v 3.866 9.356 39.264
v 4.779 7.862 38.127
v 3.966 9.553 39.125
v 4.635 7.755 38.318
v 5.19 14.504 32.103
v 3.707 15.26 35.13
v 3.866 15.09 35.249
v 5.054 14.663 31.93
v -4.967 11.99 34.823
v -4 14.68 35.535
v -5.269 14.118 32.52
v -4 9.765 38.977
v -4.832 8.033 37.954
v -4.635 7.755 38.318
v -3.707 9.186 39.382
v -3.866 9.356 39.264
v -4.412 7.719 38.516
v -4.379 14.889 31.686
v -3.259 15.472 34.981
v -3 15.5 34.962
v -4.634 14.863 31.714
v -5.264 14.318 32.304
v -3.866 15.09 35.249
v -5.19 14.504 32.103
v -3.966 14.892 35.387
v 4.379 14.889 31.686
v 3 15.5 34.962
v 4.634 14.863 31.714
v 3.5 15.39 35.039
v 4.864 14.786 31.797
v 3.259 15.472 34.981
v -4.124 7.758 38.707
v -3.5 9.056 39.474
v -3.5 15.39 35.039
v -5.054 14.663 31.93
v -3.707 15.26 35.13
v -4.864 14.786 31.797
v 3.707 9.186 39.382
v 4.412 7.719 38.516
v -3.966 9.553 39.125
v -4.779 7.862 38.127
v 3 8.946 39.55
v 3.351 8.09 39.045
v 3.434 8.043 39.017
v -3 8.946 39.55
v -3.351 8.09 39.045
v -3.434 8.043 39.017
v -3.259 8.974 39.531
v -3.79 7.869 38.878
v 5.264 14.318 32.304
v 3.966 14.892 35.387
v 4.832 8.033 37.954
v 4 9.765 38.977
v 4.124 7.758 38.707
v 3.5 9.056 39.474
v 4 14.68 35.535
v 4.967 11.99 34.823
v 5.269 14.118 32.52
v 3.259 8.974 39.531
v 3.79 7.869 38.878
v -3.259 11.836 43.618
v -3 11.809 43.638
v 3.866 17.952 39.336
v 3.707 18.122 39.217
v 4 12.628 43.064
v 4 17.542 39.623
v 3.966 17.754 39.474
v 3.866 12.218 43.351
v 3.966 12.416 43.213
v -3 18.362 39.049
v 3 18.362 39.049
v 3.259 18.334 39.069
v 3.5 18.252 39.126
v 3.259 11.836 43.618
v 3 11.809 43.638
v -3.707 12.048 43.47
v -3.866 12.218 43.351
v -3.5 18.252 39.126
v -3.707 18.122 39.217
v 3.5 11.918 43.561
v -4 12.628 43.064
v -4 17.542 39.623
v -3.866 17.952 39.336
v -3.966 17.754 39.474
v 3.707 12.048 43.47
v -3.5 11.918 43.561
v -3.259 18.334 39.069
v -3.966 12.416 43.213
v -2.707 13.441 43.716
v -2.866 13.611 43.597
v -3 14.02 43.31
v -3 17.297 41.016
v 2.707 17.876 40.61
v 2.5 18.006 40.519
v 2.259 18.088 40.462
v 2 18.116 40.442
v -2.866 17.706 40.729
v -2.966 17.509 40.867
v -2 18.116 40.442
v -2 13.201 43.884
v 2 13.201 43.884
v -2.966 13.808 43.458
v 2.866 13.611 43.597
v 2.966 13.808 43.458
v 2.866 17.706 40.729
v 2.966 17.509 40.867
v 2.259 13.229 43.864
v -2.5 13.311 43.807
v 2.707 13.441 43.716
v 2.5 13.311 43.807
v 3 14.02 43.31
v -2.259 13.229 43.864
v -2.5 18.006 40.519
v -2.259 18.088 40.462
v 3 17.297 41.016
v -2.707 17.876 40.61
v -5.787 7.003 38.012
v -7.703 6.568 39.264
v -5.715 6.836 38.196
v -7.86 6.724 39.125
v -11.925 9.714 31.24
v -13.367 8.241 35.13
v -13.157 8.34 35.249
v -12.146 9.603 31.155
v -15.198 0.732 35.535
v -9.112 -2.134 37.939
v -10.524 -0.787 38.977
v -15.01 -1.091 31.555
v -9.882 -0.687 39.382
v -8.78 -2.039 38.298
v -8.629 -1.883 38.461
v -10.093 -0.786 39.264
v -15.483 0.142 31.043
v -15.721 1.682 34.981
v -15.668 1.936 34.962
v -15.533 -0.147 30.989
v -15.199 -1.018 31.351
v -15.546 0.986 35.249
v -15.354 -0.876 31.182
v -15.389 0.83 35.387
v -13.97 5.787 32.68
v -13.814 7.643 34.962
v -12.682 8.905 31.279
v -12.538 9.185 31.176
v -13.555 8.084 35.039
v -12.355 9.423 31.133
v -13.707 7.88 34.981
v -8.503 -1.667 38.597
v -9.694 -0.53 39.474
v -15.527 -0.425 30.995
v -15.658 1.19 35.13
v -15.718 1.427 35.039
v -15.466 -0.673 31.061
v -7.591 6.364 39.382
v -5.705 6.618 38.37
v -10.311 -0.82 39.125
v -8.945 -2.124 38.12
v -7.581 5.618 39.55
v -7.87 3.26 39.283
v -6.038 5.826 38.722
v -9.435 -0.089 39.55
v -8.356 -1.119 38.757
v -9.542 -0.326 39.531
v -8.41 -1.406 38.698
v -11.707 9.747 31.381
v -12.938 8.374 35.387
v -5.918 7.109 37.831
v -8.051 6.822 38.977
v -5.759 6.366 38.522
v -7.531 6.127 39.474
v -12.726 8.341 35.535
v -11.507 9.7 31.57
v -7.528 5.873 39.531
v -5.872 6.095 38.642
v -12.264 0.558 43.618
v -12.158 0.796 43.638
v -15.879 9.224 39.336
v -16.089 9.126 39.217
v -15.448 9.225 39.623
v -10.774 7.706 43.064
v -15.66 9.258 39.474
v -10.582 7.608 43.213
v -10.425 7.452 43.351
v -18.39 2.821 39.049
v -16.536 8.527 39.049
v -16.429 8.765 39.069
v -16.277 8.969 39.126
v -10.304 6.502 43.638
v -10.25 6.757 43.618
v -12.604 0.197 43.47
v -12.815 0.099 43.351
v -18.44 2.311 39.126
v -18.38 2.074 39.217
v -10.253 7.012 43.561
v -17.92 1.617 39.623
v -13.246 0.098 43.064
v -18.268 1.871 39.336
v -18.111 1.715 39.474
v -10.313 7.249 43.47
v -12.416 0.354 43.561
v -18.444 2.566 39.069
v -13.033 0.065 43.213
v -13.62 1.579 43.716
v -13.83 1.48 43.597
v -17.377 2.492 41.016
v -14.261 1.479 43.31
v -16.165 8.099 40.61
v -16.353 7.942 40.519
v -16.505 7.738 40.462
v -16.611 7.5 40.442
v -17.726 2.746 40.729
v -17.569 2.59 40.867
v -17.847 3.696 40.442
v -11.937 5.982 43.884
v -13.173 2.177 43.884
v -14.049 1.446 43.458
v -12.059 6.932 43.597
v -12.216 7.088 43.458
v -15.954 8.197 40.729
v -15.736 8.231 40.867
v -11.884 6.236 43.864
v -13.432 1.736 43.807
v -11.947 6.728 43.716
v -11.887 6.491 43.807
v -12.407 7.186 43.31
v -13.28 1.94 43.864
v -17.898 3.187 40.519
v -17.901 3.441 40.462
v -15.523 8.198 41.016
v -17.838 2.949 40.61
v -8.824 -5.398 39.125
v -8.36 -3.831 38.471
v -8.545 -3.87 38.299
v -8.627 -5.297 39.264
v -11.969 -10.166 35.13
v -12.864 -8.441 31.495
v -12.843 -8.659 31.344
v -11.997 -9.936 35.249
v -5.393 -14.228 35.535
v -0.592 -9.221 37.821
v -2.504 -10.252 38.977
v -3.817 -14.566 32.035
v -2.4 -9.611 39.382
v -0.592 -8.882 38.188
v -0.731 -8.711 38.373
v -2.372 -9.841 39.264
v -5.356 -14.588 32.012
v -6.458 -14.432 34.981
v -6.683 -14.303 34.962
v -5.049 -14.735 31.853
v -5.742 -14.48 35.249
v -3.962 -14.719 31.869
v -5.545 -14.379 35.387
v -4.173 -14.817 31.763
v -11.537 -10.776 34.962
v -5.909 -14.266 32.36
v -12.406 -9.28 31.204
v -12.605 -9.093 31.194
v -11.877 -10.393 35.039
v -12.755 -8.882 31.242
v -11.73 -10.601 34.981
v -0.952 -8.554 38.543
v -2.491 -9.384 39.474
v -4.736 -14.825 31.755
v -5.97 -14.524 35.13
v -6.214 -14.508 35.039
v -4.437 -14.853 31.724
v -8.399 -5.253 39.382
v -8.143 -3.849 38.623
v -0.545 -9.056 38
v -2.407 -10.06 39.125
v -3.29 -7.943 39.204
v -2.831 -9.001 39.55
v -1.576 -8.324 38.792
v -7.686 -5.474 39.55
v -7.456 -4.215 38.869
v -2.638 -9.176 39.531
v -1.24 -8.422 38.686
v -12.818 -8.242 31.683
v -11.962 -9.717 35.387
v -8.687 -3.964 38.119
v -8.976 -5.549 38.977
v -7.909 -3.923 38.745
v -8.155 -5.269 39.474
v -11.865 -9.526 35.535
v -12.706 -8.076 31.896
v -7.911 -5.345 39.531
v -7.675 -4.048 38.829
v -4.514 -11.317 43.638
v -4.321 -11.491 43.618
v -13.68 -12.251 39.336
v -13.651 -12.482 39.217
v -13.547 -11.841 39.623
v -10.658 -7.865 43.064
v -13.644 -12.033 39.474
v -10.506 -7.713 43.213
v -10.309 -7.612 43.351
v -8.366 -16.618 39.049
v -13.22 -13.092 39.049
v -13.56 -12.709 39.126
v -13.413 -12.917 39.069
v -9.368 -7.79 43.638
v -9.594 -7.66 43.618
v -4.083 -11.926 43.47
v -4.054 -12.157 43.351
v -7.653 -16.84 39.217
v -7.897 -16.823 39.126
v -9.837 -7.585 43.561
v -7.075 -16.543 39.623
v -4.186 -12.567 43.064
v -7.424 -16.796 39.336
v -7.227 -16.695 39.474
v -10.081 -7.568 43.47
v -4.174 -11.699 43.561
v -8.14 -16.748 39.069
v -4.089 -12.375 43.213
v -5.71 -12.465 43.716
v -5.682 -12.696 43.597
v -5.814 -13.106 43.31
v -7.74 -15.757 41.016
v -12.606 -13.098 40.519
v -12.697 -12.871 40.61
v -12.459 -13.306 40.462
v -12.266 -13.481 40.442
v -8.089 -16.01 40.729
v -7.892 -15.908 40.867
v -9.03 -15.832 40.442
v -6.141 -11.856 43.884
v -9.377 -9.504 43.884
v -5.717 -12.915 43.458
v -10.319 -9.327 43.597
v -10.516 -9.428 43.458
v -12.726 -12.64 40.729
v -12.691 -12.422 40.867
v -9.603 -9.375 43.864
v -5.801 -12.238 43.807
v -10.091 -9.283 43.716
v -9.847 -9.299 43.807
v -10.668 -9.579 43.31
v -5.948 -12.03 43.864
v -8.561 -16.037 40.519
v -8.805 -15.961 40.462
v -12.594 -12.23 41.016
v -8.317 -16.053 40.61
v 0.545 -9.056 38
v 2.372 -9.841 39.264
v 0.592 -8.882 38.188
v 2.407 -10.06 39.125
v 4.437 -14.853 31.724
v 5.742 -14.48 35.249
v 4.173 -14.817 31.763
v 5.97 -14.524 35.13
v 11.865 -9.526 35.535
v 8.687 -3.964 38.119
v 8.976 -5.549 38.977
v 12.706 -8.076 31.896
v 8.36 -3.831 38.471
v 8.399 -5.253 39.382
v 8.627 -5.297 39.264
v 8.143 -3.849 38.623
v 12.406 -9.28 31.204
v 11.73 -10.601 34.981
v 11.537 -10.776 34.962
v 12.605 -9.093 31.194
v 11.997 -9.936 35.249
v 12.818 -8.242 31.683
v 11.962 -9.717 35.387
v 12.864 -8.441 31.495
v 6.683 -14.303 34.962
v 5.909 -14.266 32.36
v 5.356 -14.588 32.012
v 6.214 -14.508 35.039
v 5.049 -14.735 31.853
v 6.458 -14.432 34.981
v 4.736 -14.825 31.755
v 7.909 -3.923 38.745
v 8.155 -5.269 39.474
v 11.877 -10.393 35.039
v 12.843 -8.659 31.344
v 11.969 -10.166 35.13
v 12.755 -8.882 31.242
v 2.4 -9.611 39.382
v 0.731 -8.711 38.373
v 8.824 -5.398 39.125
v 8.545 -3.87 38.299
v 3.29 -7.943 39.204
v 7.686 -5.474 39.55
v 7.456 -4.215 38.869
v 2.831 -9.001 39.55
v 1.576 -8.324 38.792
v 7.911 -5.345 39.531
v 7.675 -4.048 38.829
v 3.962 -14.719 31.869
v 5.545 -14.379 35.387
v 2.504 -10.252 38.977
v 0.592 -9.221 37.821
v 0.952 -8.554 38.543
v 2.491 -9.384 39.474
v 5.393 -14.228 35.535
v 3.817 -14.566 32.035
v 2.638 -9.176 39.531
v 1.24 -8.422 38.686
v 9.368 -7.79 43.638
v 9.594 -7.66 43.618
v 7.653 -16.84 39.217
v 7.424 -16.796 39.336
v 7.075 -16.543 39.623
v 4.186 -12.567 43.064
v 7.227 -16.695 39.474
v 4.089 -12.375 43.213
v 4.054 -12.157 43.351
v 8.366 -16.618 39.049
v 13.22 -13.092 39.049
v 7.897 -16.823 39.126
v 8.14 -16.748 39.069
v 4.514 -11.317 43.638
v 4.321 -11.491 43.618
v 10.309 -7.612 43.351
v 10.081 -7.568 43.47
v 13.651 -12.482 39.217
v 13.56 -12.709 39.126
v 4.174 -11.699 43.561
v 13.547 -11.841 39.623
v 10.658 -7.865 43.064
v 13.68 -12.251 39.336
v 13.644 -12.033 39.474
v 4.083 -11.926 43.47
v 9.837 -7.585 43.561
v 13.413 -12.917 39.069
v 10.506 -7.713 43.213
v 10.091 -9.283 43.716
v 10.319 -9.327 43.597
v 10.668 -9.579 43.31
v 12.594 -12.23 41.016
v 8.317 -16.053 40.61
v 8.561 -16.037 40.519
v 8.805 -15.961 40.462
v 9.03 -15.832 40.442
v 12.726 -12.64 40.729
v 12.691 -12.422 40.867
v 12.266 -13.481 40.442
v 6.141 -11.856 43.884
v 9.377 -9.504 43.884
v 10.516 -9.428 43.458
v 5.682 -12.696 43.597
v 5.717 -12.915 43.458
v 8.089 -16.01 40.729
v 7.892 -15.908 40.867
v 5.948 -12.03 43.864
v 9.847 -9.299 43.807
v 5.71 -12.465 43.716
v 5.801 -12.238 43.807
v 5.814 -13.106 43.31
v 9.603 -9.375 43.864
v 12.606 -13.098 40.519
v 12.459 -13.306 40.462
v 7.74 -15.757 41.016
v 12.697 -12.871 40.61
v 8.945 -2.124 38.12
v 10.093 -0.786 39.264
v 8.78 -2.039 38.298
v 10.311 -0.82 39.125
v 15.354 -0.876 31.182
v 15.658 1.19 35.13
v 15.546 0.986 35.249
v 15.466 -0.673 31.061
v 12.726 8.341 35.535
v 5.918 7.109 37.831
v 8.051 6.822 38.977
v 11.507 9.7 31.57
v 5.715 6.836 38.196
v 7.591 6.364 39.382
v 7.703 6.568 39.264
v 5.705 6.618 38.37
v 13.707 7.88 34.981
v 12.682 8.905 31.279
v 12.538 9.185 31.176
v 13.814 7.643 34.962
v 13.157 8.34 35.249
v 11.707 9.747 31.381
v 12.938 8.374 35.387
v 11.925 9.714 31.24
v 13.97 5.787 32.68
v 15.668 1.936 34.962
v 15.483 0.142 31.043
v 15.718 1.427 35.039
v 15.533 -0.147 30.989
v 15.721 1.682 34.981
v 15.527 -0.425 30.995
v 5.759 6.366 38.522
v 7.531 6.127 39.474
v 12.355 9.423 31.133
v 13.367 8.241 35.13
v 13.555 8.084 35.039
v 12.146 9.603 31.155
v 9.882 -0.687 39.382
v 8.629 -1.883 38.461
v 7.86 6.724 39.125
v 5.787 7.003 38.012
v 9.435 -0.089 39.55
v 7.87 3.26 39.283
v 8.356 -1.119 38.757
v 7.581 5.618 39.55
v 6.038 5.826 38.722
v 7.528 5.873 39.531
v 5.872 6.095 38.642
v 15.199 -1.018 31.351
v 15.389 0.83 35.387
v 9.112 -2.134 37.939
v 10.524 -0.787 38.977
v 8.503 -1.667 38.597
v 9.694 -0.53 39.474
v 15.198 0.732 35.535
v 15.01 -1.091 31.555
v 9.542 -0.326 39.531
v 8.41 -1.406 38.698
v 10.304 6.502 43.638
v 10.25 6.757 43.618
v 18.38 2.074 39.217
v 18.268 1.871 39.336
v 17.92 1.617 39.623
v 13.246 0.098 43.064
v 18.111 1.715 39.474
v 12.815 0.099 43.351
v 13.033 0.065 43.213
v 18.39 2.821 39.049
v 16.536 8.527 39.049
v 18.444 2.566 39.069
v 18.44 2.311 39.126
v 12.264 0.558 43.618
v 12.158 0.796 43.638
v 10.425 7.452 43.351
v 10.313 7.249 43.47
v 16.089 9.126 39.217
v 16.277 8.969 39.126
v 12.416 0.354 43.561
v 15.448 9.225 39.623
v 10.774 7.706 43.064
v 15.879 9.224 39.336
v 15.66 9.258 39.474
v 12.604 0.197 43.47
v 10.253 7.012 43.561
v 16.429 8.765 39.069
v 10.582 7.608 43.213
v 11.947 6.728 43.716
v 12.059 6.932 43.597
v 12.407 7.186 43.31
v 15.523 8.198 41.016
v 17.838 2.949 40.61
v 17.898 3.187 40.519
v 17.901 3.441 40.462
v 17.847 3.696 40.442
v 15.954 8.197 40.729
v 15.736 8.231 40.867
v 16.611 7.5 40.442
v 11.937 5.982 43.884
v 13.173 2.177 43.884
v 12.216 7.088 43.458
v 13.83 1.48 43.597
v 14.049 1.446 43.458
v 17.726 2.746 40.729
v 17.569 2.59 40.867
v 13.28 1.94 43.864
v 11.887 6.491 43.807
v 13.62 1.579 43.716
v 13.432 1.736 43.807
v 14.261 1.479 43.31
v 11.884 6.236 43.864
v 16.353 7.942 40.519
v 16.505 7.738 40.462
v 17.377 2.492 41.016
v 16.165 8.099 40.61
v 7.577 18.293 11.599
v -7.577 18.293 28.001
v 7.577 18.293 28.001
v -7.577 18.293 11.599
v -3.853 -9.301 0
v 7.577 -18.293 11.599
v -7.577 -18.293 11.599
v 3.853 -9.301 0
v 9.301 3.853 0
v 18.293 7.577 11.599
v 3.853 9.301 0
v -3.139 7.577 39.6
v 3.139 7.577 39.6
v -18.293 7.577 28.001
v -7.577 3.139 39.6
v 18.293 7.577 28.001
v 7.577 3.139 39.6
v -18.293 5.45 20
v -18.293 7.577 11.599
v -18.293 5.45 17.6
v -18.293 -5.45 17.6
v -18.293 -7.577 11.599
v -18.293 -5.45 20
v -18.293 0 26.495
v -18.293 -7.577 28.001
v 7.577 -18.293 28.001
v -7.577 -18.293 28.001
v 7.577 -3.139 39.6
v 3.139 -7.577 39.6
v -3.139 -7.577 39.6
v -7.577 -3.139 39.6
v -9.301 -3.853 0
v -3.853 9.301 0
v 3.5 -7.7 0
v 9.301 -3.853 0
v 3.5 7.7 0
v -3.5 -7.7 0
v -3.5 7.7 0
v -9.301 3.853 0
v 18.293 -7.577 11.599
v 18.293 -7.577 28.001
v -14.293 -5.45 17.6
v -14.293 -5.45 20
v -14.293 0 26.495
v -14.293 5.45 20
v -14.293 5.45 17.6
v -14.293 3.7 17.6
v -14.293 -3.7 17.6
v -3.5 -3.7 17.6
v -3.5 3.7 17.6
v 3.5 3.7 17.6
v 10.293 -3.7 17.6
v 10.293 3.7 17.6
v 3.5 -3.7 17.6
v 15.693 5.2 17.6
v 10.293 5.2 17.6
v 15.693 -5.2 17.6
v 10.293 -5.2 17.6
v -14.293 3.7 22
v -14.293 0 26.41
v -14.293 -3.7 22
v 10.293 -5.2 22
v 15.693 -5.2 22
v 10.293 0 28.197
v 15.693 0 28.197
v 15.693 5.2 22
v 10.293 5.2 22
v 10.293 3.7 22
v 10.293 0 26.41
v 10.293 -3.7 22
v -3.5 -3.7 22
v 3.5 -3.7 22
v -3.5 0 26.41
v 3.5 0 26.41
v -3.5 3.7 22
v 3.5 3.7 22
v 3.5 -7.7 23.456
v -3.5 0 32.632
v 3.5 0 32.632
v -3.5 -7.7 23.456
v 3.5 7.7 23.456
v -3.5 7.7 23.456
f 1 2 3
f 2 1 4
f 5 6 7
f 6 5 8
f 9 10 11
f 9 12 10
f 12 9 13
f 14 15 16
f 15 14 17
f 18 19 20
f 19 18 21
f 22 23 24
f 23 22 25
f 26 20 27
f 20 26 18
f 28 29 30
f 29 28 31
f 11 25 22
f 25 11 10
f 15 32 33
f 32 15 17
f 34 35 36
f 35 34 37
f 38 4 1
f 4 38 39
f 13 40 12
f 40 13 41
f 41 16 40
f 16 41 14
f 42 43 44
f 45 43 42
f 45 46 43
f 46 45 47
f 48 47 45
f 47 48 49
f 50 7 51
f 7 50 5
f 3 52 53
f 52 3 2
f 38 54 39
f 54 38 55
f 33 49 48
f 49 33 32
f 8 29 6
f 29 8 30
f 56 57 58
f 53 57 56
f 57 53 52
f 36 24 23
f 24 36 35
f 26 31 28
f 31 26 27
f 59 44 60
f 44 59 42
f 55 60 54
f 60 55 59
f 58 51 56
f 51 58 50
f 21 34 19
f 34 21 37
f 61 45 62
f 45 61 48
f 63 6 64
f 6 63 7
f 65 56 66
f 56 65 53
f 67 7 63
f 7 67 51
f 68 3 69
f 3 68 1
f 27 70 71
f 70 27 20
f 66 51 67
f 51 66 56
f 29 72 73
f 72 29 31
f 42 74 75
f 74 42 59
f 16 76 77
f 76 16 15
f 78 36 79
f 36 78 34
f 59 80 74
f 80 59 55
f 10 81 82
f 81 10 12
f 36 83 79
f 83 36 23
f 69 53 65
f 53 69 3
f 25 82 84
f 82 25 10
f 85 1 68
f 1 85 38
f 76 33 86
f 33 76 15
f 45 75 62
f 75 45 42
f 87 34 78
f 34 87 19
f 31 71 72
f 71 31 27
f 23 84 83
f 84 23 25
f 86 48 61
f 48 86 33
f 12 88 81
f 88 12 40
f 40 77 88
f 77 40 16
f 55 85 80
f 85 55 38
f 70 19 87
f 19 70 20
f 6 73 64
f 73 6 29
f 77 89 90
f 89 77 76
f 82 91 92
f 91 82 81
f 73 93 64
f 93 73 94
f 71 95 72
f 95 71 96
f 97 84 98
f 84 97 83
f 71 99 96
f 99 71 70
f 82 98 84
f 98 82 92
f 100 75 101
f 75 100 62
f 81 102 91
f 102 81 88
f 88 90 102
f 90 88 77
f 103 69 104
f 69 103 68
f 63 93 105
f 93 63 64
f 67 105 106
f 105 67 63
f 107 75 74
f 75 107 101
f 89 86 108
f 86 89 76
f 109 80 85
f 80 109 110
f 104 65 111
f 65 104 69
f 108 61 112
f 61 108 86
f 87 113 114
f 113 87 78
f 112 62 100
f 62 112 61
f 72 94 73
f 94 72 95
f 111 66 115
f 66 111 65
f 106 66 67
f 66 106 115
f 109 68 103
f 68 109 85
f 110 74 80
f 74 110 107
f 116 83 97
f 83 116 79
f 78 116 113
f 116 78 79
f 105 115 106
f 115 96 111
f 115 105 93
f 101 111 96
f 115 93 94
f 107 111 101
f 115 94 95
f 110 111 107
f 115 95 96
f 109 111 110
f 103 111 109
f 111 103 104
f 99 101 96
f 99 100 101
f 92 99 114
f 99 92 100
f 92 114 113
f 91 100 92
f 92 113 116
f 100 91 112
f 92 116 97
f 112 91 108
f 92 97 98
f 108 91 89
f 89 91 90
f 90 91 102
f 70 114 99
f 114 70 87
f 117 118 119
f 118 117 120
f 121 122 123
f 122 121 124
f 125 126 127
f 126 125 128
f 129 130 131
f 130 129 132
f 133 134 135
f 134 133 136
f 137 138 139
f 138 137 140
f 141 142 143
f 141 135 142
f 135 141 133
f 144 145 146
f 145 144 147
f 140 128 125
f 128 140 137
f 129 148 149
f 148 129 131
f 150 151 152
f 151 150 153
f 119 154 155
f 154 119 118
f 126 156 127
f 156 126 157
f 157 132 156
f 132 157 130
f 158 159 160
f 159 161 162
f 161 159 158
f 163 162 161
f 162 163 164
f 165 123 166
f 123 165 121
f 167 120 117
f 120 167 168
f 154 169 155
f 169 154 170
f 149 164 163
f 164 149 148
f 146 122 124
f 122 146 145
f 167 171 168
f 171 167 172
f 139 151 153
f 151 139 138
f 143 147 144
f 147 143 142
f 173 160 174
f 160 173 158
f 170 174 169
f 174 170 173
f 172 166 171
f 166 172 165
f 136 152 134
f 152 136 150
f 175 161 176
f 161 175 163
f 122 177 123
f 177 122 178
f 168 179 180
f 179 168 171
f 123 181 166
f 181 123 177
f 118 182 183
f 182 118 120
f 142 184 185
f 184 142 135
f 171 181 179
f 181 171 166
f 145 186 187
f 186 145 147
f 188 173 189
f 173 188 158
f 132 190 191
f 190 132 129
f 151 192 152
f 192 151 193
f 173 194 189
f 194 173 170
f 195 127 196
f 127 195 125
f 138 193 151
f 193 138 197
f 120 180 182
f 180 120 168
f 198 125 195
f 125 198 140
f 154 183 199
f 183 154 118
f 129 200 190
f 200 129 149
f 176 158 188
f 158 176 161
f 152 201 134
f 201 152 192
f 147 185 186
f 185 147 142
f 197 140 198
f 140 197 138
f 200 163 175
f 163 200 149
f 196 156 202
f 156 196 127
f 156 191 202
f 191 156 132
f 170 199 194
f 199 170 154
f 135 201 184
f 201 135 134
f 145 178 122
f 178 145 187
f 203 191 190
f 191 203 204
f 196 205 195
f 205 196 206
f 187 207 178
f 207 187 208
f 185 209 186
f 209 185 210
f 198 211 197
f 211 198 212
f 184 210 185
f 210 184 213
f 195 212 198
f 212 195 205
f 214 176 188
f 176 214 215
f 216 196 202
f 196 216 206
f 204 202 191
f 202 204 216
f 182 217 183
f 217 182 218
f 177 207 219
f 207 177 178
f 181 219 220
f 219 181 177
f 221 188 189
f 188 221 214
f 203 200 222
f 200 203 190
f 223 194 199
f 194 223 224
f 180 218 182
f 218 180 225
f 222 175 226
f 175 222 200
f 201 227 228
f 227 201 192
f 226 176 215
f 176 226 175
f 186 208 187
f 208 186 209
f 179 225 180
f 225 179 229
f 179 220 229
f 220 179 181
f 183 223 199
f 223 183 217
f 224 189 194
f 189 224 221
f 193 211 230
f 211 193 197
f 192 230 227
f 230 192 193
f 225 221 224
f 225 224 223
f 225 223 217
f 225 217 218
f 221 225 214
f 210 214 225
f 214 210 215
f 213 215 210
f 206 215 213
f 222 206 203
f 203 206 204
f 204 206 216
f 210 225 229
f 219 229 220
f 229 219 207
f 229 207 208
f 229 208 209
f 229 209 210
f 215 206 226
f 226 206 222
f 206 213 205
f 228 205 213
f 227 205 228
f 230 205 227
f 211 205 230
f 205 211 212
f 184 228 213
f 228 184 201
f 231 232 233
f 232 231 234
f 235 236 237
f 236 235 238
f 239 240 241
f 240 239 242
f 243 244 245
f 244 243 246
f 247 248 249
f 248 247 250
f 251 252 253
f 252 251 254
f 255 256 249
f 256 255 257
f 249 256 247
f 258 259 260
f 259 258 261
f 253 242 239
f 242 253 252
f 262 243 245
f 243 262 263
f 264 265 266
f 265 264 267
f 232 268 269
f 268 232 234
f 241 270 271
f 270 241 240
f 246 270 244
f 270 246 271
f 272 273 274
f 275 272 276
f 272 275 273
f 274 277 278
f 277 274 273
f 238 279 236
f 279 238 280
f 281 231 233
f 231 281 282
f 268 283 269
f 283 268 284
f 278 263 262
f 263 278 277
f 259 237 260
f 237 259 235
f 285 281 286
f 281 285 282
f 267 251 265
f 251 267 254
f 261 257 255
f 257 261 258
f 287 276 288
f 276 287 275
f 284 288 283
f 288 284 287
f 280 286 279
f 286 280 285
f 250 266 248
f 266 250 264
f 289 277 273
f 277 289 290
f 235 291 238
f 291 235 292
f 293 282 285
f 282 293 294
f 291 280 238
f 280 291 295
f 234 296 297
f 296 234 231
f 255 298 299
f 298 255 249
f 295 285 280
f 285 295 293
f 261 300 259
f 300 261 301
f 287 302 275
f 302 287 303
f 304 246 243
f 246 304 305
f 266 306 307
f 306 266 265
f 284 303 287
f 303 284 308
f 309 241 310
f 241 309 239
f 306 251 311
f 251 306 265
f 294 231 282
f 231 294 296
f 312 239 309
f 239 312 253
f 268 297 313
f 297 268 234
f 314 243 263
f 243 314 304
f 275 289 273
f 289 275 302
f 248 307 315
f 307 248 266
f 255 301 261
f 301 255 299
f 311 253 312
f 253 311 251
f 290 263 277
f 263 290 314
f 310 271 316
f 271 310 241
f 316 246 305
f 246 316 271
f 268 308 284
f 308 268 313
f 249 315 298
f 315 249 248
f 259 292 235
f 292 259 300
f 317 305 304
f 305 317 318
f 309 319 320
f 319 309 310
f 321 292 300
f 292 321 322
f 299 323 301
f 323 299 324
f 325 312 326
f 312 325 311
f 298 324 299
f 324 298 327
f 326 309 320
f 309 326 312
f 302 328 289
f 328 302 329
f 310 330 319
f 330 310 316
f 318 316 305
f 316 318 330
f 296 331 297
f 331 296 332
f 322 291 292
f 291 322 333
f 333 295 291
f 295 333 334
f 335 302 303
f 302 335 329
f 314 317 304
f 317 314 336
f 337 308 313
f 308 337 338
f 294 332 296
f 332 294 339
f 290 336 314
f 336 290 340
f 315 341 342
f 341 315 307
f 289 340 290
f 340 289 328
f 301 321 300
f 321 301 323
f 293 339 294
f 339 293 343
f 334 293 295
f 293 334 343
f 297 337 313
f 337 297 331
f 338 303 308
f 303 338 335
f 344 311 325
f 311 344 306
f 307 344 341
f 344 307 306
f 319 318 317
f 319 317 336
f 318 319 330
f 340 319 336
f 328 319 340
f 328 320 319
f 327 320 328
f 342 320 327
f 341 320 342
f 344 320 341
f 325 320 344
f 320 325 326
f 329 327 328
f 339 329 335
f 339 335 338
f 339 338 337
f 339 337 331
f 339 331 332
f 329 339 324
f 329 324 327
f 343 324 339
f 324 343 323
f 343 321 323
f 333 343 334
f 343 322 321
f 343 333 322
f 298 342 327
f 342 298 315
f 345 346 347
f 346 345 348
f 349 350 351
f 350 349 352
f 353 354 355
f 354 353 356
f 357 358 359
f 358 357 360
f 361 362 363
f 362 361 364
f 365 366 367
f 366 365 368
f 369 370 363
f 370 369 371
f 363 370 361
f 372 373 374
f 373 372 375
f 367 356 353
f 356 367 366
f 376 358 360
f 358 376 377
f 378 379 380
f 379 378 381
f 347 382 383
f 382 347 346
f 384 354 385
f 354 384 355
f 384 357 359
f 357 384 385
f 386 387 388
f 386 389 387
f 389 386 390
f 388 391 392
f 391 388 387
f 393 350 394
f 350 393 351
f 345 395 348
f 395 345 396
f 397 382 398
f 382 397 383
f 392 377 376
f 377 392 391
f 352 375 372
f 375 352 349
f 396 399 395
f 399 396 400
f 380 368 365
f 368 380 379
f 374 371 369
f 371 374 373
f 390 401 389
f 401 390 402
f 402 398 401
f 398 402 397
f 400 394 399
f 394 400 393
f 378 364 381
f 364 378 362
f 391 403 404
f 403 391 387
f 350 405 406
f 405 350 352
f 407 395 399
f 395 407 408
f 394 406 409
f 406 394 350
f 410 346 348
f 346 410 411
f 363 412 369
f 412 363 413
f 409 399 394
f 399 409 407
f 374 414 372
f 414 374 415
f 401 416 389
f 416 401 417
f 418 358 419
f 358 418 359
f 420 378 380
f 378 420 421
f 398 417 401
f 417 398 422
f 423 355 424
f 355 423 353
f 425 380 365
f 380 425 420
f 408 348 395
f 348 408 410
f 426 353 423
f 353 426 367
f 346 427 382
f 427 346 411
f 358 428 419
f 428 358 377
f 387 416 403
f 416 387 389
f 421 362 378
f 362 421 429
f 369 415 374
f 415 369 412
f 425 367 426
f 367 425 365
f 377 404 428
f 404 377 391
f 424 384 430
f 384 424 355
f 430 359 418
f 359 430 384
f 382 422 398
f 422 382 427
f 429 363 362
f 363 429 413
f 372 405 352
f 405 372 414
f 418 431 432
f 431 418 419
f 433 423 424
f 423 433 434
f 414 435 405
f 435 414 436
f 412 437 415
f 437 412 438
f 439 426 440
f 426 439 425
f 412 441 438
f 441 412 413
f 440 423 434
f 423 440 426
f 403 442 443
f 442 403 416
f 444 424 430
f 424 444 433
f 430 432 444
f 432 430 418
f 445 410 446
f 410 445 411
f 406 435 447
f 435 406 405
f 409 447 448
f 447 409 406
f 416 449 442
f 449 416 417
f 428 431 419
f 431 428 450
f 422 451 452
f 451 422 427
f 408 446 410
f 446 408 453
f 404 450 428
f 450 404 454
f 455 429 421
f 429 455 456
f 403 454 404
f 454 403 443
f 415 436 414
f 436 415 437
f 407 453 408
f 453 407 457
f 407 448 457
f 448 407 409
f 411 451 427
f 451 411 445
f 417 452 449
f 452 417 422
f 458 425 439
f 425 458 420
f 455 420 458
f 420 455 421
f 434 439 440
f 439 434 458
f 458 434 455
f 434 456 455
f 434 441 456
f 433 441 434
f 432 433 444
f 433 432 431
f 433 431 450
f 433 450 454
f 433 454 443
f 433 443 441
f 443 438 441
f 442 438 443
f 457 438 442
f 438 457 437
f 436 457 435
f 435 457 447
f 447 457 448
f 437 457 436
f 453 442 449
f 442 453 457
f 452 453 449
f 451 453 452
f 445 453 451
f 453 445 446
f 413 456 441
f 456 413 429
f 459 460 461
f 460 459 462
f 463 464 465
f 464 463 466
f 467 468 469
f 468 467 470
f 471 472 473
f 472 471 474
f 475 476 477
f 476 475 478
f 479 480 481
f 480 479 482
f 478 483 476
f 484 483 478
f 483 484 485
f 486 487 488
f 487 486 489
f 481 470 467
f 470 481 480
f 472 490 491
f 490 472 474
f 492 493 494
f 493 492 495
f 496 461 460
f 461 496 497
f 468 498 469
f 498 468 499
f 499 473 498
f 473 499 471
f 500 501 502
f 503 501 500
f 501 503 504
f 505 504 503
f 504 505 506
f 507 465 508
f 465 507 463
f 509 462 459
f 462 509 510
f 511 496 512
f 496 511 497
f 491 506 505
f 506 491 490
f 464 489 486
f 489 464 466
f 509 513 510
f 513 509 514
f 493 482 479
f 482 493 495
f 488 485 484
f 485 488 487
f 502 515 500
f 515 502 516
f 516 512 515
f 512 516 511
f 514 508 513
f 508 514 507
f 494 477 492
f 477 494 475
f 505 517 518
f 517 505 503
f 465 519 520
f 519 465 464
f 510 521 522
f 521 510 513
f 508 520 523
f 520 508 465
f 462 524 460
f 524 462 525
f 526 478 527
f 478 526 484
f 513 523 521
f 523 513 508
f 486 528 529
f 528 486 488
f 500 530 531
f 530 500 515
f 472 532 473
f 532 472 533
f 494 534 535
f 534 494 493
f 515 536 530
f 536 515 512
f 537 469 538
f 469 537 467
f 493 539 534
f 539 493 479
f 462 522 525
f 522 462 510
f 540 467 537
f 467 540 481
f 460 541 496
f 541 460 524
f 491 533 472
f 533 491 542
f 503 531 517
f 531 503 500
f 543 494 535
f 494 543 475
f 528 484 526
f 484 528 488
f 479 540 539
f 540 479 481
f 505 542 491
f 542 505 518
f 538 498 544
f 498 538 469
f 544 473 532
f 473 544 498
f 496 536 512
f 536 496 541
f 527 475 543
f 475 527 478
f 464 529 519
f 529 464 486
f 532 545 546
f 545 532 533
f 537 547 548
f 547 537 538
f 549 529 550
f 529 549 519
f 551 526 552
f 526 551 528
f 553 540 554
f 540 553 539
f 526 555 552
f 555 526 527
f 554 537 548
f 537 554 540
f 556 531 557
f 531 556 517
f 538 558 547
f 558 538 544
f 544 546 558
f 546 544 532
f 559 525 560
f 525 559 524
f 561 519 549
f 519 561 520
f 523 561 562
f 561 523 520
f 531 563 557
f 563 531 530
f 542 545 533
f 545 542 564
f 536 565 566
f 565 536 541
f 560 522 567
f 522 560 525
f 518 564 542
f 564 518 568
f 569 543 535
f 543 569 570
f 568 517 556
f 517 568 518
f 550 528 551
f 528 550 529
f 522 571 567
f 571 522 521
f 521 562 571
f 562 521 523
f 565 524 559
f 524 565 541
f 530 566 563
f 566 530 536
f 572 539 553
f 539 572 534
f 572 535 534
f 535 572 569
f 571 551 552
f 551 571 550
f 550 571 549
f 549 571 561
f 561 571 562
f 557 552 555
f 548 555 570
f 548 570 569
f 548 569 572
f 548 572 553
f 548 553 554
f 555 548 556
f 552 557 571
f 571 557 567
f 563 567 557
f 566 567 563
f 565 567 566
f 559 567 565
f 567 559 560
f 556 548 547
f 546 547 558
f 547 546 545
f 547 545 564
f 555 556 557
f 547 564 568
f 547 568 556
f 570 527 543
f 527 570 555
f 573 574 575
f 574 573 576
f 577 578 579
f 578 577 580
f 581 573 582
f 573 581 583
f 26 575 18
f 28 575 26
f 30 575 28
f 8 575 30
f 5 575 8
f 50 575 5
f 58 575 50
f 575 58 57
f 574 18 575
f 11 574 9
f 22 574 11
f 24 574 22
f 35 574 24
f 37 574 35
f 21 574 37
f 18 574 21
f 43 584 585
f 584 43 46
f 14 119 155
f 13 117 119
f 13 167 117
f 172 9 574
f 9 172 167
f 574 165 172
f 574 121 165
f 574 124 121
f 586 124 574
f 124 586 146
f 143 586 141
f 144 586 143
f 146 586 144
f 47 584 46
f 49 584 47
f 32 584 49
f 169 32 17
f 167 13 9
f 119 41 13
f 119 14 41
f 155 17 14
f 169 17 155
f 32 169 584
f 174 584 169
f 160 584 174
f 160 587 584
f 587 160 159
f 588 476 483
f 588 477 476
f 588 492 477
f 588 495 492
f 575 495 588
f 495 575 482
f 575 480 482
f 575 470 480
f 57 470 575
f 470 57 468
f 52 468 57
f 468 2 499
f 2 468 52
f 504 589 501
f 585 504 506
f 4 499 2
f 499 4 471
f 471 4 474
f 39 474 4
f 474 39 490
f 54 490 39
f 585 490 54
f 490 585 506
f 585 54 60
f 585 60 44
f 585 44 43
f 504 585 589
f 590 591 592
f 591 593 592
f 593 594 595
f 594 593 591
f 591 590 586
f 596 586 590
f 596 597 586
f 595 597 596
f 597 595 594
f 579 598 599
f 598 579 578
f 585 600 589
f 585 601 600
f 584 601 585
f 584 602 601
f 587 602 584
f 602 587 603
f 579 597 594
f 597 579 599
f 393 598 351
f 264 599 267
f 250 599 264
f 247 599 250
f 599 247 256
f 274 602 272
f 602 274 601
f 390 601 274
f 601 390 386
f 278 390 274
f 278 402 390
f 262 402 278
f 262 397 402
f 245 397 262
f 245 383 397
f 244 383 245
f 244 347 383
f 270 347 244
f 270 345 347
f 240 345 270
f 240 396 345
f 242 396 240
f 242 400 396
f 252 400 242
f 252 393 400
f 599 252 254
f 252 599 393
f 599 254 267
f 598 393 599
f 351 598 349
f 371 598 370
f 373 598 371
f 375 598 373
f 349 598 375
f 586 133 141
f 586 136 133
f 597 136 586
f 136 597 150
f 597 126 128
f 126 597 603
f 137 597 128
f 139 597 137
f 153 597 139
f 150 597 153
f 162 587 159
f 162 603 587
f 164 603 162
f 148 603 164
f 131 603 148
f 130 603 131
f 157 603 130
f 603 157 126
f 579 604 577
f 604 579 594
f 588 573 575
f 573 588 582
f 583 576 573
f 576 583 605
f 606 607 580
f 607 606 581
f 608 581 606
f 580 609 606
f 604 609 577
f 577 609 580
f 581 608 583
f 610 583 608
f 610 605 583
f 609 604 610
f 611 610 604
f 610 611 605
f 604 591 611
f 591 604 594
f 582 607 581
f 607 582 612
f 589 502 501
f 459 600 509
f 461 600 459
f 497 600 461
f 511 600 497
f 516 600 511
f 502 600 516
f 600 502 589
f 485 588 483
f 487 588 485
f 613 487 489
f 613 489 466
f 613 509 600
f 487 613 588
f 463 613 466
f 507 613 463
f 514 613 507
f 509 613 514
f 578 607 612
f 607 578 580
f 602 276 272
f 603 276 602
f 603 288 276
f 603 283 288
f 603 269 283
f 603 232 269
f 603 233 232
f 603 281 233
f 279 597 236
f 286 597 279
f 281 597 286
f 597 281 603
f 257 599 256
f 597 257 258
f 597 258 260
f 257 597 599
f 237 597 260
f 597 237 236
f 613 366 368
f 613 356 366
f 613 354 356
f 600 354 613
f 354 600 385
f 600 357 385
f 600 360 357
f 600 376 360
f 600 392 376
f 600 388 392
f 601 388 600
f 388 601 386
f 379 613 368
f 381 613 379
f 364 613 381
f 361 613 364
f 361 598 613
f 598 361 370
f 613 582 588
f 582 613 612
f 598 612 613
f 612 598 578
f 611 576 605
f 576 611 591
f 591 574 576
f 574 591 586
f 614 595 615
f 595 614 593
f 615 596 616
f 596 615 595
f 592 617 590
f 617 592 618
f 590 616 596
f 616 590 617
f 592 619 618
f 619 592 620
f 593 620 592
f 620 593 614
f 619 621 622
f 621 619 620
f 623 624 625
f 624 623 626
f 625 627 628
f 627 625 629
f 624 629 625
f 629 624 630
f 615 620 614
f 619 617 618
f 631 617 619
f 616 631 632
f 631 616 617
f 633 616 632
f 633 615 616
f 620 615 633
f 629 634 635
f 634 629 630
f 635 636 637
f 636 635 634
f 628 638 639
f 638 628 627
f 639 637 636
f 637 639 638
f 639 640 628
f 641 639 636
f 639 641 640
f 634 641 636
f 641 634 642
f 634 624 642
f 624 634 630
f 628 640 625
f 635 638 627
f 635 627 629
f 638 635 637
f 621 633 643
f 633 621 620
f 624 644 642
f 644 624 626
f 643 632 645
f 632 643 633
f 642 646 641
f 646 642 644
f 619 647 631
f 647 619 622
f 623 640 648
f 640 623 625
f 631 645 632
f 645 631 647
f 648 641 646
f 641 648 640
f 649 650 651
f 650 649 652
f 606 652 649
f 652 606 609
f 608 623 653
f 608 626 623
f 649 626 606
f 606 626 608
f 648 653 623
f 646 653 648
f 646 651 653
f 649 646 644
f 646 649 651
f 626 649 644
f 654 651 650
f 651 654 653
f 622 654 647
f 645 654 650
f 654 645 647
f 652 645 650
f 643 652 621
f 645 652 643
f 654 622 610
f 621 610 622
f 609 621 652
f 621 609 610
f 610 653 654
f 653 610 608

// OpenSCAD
// Faceted sea-mine (8 flat sides, square horns; Russ): generated from chain_shot_ball.scad, edit that file.
// Chain-shot ball: one of two identical solid PCTG balls joined by steel
// cable (recommended) or chain. Fired one behind the other with the cable
// folded between them; in flight they spread and spin around each other.
//
// Shape: as round as a one-piece, support-free print allows. A 39.6 mm sphere
// whose only non-round spot is a small flat on the bottom (with a short 47 deg
// cone), where the cable leaves. Optional sea-mine horns (set horns = true).
//
// Cable/chain anchor: a thick snap-in cross pin with a channel around it.
//   - Pin first: push it in through the side hole marked by the wide
//     counterbore (the "head" side) until its split end snaps into the pocket
//     on the far side. It takes a firm push.
//   - Then the cable: push one end up the channel from the bottom flat on one
//     side of the pin. The peaked ceiling steers it over the top of the pin
//     and back down the other side and out the bottom. Pull it through and
//     crimp a loop (or join the two ends) outside the ball.
//   - Locked both ways: the head stops the pin going further in; two hooks on
//     the split end catch a square ledge so it can't back out.
//   - To remove: squeeze the two hooks together through the wide far-side
//     opening (pliers or fingertips) and push the pin back out the head side.
//   - The cable's pull presses the pin down onto solid plastic (compression).
// Pin and hole have a "house" profile (flat floor, straight sides, 50 deg
// roof): the hole prints with no support, the pin prints lying on its floor,
// and it can't spin.
//
// Cable: 1/8 in. 7x19 galvanized or stainless wire rope (about 1,700-2,000 lb
// breaking strength), stronger than the printed pin, so the cable is not the
// weak link. The channel leaves 4 mm around the pin for it (1/16 or 3/32 in.
// cable also fits). Chain: a link wire up to ~3.5 mm thick fits the channel,
// but a chain can't be threaded around an installed pin: open the end link or
// use a quick link through the channel instead.
//
// Print: ball flat side down, 100% infill. Pin flat side down, 100% infill,
// 5+ walls. Supports off.

$fn = 160;

part        = "ball";   // "ball", "pin", or "both"
shape       = "ball";   // "ball" (round) or "slug" (39.6 x 39.6 mm cylinder: no overhangs, ~70% heavier)
slug_round  = 2.0;      // slug: rounded top edge
horns       = true;     // true = sea-mine version with thick horns on the upper half
faceted     = true;     // true = 8-sided body (octagon from above and from the side) and square horns (Russ:
                        // round shapes print jagged and stringy on his printer; flat faces print clean)
lead        = false;    // faceted only: two sealed side pockets for lead shot, filled during a print PAUSE (Russ)
lead_wall   = 3.0;      // plastic around the pockets
lead_pause  = 26.0;     // PAUSE here: pockets are open up to this height; their 50 deg roofs print after
horn_n      = 5;
horn_elev   = 55;       // ring horns point this far above level (>= 45 to print unsupported)
horn_d      = 8.0;
horn_out    = 7.5;      // ring horns stick out this far (kept inside the 39.6 mm width)
top_horn    = 9.0;

max_width   = 39.6;
ball_d      = 39.6;     // Russ: 39.6 for everything (barrel ~40.1 mm)
cone_a      = 47;       // underside slope from horizontal
// cable channel: up from the bottom flat, with room for the cable to run up
// one side of the installed pin, over its peaked top and down the other side
cable_gap   = 4.0;      // room for the cable each side of / above the pin (1/8 in. cable = 3.2 mm)
chan_t      = 7.0;      // channel thickness (along the pin)
release_w   = 16.0;     // width of the far-side opening where you pinch the hooks (pliers room)

// snap pin
pin_w       = 7.0;      // pin width (thick)
pin_side    = 4.0;      // height of the pin's straight sides (roof adds pin_w/2*tan(50))
head_w      = 10.5;     // head at the entry end
head_len    = 4.0;      // head length (sits in the entry counterbore)
barb        = 1.3;      // how far each hook sticks out (snap engagement; rev 3: was 1.0, Russ saw wear)
prong_len   = 13.0;     // springy prong length (longer = easier flex, less strain)
slot_w      = 2 * barb + 0.4;   // gap between the prongs so they can close fully
clr         = 0.2;      // pin-to-hole clearance
hook_flat   = 2.4;      // length of each hook's full-height catch (rev 3: was 1.6)
horn_r      = 1.0;      // faceted horns: long edges rounded, ends bevelled (fewer chips on rocks)
pin_round   = 2.0;      // pin's peak and roof corners rounded (Russ: sharp edges can cut Kevlar line)
// Faceted mine (flush, Russ): the pin goes in from ONE side only (-X). Its head fills a pocket
// its own size, flush with that flat face. The hooks snap into a hidden pocket inside the far
// side, so there's no hole there either. The pin is permanent; the cable still threads around it.
flush       = faceted;

assert(ball_d <= max_width, "ball_d exceeds max_width");
R  = ball_d / 2;
Rf = faceted ? R * cos(22.5) : R;      // distance to the flats on +/-X (pin ends stay inside)
zc = R;
zt = zc - R * cos(cone_a);
rt = R * sin(cone_a);
rb = rt - zt / tan(cone_a);
T50 = tan(50);

// x positions along the pin axis (ball centre = 0); head on -X, prongs on +X
chan_w    = pin_w + 2 * clr + 2 * cable_gap;   // channel width across the pin (15.4 mm)
x_head_in = flush ? -Rf + head_len : -Rf + head_len + 1.5;   // inner face of the head = counterbore shoulder
x_ledge   = flush ? Rf - 8.0 : Rf - 6.0;                    // square ledge the hooks catch on
x_tip     = flush ? Rf - 3.0 : faceted ? Rf - 0.3 : sqrt(R * R - pow(pin_w / 2 + barb, 2)) - 0.3;   // pin end, inside the ball surface
floor_z   = -pin_side / 2;              // pin floor, relative to the ball centre
pocket_w  = pin_w + 2 * barb + 0.8;     // hidden hook pocket (flush style): hooks spring out into it
head_side = 2.0;                        // flush head (rev 5, Russ: the tall peaked head notched the face's top edge):
                                        // wide (head_w) only up to this height, then no taller than the pin body
module head_shape(g = 0) {              // flush head profile, grown by g (pocket) or not (pin)
    union() {
        house(pin_w + 2 * g, pin_side + 2 * g, floor_z - g);
        house(head_w + 2 * g, head_side + 2 * g, floor_z - g);
    }
}
x_pocket  = Rf - 2.6;                   // its far end: 2.6 mm of wall left under the flat face

module house(w, h, fl = floor_z) {      // flat floor, straight sides, 50 deg peaked roof
    polygon([[-w / 2, fl], [w / 2, fl], [w / 2, fl + h], [0, fl + h + w / 2 * T50], [-w / 2, fl + h]]);
}
module house_round(w, h) {             // the pin's profile: square floor corners, rounded roof and peak
    union() {
        offset(r = pin_round) offset(delta = -pin_round) house(w, h);
        translate([-w / 2, floor_z]) square([w, pin_round]);
    }
}
module along_x(x0, x1) {                // extrude a profile (y, z) along X from x0 to x1
    translate([x0, 0, 0]) rotate([90, 0, 90]) linear_extrude(height = x1 - x0) children();
}

module ball_shape() {
    if (shape == "slug") {
        // straight walls and a flat top: nothing overhangs, so it prints clean
        rotate_extrude() hull() {
            square([R, 0.01]);
            square([0.01, ball_d]);
            translate([R - slug_round, ball_d - slug_round]) circle(r = slug_round, $fn = 48);
            translate([R - 0.01, 0]) square([0.01, ball_d - slug_round]);
        }
    } else if (faceted) {
        // side view: an octagon with a flat bottom (cable exit) and flat top; underside 50 deg
        fb = R * tan(22.5);                    // half the vertical band = octagon side / 2
        r_bot = R - (zc - fb) / tan(50);       // bottom flat radius
        rotate([0, 0, 22.5]) rotate_extrude($fn = 8)
            polygon([[0, 0], [r_bot, 0], [R, zc - fb], [R, zc + fb], [R - (R - fb), 2 * R], [0, 2 * R]]);
    } else intersection() {
        translate([0, 0, zc]) sphere(r = R);
        translate([0, 0, zt]) cylinder(h = 2 * R, r = R + 1);
    }
    if (shape != "slug" && !faceted) cylinder(h = zt + 0.6, r1 = rb, r2 = rb + (zt + 0.6) / tan(cone_a));
}

module rsq(w) { offset(r = horn_r, $fn = 24) square(w - 2 * horn_r, center = true); }   // square with rounded corners
module horn(len) {
    if (faceted) translate([0, 0, R - 4]) {
        // square horn: flared square base, straight square post, flat square end
        hull() { linear_extrude(0.01) rsq(horn_d + 5);
                 translate([0, 0, 5.5]) linear_extrude(0.01) rsq(horn_d); }
        linear_extrude(len + 3) rsq(horn_d);
        hull() { translate([0, 0, len + 3 - 0.01]) linear_extrude(0.01) rsq(horn_d);
                 translate([0, 0, len + 4 - 0.01]) linear_extrude(0.01) rsq(horn_d - 2); }   // 45 deg bevel at the end
    } else translate([0, 0, R - 2]) {
        cylinder(h = 3.5, d1 = horn_d + 5, d2 = horn_d);
        cylinder(h = len + 2 - horn_d / 2, d = horn_d);
        translate([0, 0, len + 2 - horn_d / 2]) sphere(d = horn_d);
    }
}
module horns_all() {
    translate([0, 0, zc]) {
        // ring rotated so no horn sits over the pin's side openings (+/-X)
        for (i = [0 : horn_n - 1])
            rotate([0, 0, 360 * i / horn_n + 90]) rotate([0, 90 - horn_elev, 0]) horn(horn_out);
        if (!faceted) horn(top_horn);   // faceted mines: no top horn (Russ)
    }
}

// lead pockets: one each side of the pin/cable slab (+/-Y), symmetric so the CG stays centred.
// Each is one convex hull: a thin start low in the chamfer, full width through the band,
// open top at lead_pause, then a 50 deg roof that closes after the pause.
lp_y0 = (flush ? max(pin_w + 2 * cable_gap + 2 * clr, head_w + 2 * clr, pocket_w) : release_w) / 2 + 2.6;   // 2.6 mm past the cable channel / openings
// Pockets are unions of convex pieces, each with its own 50 deg roof (a union adds no new
// overhangs). Piece 1 spans the middle beside the cable channel; pieces 2 and 3 (flush style)
// reach further in toward the pin near each end, where the channel isn't.
lp_y1 = (flush ? max(head_w + 2 * clr, pocket_w) : release_w) / 2 + 2.6;   // past the head pocket / hook pocket
lp_x1 = chan_t / 2 + 2.6;                                                   // past the cable channel
module lead_sec(a, y0, xa, xb) {       // octagon of apothem a (flats on X and Y), part with y >= y0, xa <= x <= xb
    intersection() {
        rotate([0, 0, 22.5]) circle(r = a / cos(22.5), $fn = 8);
        translate([xa, y0]) square([xb - xa, 50]);
    }
}
module lead_piece(y0, xa, xb, d) {   // d: how far the 50 deg roof closes in (under the piece's inradius)
    a_band = R * cos(22.5) - lead_wall;            // inner flat distance in the straight band
    fb = R * tan(22.5);
    z_band = zc - fb;                              // bottom of the straight band
    hull() {
        // flat floor 1 mm above the top of the sloped underside (rev 4, Russ: a thin wall leaning out
        // over the pocket softened and curled while printing), so the overhanging part is solid
        translate([0, 0, z_band + 1.0]) linear_extrude(lead_pause - z_band - 1.0) lead_sec(a_band, y0, xa, xb);
        translate([0, 0, lead_pause + d * tan(50) - 0.01]) linear_extrude(0.01) offset(delta = -d) lead_sec(a_band, y0, xa, xb);
    }
}
module lead_pocket() {
    lead_piece(lp_y0, -50, 50, (R * cos(22.5) - lead_wall - lp_y0) / 2 - 0.05);
    if (flush) { lead_piece(lp_y1, lp_x1, 50, 2.0); lead_piece(lp_y1, -50, -lp_x1, 2.0); }
}

module ball() {
    roof_top = floor_z + pin_side + pin_w / 2 * T50;
    difference() {
        union() { ball_shape(); if (horns) horns_all(); }
        if (faceted && lead) for (s = [0, 1]) mirror([0, s, 0]) lead_pocket();
        // cable channel: the pin's own house shape grown by cable_gap all
        // round, so the ceiling runs parallel to the pin's 50 deg roof and
        // steers a cable pushed up one side over the top and down the other.
        // Open at the bottom flat; walls vertical, ceiling 50 deg (no supports).
        translate([0, 0, zc]) {
            pin_peak = floor_z - clr + pin_side + 2 * clr + (pin_w / 2 + clr) * T50;
            ch_peak  = pin_peak + cable_gap / cos(50);
            ch_side  = ch_peak - chan_w / 2 * T50;
            translate([-chan_t / 2, 0, 0]) rotate([90, 0, 90]) linear_extrude(height = chan_t)
                polygon([[-chan_w / 2, -zc - 1], [chan_w / 2, -zc - 1], [chan_w / 2, ch_side],
                         [0, ch_peak], [-chan_w / 2, ch_side]]);
        }
        translate([0, 0, zc]) {
            // pin hole through the middle
            along_x(x_head_in - 0.01, x_ledge + 0.01) house(pin_w + 2 * clr, pin_side + 2 * clr, floor_z - clr);
            if (flush) {
                // head pocket: exactly the head's size, so the head ends flush with the flat face
                along_x(-R - 2, x_head_in) head_shape(clr);
                // hidden hook pocket inside the far side (no hole to the outside)
                along_x(x_ledge, x_pocket) house(pocket_w, pin_side + 2 * clr, floor_z - clr);
            } else {
            // entry opening for the head: as wide as the release opening on the
            // far side, so the ball stays balanced (the pin body centres the head)
            along_x(-R - 2, x_head_in) house(release_w, pin_side + 2 * clr, floor_z - clr);
            // exit pocket the hooks spring into, open to the surface and wide
            // enough to get pliers (or fingertips) on both hooks
            along_x(x_ledge, R + 2) house(release_w, pin_side + 2 * clr, floor_z - clr);
            }
        }
    }
}

module pin_raw() {
    difference() {
        union() {
            along_x(x_head_in - 0.15, x_tip) house_round(pin_w, pin_side);      // body (rounded roof: kind to the cable)
            if (flush) along_x(-Rf + 0.1, x_head_in - 0.15) head_shape(0);          // low flush head
            else along_x(-R, x_head_in - 0.15) house(head_w, pin_side);             // head (0.15 short of its shoulder)
            // hooks: square catch face just past the ledge, then a lead-in taper to the tip
            for (s = [-1, 1]) mirror([0, s < 0 ? 1 : 0, 0])
                translate([0, 0, floor_z]) linear_extrude(height = pin_side)
                    polygon([[x_ledge + 0.25, pin_w / 2 - 0.01], [x_ledge + 0.25, pin_w / 2 + barb],
                             [x_ledge + hook_flat, pin_w / 2 + barb], [x_tip, pin_w / 2 + 0.05], [x_tip, pin_w / 2 - 0.01]]);
        }
        // split the end into two springy prongs
        translate([x_tip - prong_len, -slot_w / 2, floor_z - 1]) cube([prong_len + 1, slot_w, 30]);
    }
}
module pin() {
    // ends trimmed flush to the outside: a sphere for the ball, a cylinder for the slug
    intersection() {
        pin_raw();
        if (shape == "slug") translate([0, 0, -R]) cylinder(h = ball_d, r = R - 0.15);
        else if (faceted) translate([-Rf + 0.15, -R, -R]) cube([2 * Rf - 0.3, 2 * R, 2 * R]);
        else sphere(r = R - 0.15);
    }
}

if (part == "ball") ball();
else if (part == "pin") translate([0, 0, -floor_z]) pin();
else if (part == "pinplaced") translate([0, 0, zc]) pin();
else { ball(); translate([0, 32, -floor_z]) pin(); }
